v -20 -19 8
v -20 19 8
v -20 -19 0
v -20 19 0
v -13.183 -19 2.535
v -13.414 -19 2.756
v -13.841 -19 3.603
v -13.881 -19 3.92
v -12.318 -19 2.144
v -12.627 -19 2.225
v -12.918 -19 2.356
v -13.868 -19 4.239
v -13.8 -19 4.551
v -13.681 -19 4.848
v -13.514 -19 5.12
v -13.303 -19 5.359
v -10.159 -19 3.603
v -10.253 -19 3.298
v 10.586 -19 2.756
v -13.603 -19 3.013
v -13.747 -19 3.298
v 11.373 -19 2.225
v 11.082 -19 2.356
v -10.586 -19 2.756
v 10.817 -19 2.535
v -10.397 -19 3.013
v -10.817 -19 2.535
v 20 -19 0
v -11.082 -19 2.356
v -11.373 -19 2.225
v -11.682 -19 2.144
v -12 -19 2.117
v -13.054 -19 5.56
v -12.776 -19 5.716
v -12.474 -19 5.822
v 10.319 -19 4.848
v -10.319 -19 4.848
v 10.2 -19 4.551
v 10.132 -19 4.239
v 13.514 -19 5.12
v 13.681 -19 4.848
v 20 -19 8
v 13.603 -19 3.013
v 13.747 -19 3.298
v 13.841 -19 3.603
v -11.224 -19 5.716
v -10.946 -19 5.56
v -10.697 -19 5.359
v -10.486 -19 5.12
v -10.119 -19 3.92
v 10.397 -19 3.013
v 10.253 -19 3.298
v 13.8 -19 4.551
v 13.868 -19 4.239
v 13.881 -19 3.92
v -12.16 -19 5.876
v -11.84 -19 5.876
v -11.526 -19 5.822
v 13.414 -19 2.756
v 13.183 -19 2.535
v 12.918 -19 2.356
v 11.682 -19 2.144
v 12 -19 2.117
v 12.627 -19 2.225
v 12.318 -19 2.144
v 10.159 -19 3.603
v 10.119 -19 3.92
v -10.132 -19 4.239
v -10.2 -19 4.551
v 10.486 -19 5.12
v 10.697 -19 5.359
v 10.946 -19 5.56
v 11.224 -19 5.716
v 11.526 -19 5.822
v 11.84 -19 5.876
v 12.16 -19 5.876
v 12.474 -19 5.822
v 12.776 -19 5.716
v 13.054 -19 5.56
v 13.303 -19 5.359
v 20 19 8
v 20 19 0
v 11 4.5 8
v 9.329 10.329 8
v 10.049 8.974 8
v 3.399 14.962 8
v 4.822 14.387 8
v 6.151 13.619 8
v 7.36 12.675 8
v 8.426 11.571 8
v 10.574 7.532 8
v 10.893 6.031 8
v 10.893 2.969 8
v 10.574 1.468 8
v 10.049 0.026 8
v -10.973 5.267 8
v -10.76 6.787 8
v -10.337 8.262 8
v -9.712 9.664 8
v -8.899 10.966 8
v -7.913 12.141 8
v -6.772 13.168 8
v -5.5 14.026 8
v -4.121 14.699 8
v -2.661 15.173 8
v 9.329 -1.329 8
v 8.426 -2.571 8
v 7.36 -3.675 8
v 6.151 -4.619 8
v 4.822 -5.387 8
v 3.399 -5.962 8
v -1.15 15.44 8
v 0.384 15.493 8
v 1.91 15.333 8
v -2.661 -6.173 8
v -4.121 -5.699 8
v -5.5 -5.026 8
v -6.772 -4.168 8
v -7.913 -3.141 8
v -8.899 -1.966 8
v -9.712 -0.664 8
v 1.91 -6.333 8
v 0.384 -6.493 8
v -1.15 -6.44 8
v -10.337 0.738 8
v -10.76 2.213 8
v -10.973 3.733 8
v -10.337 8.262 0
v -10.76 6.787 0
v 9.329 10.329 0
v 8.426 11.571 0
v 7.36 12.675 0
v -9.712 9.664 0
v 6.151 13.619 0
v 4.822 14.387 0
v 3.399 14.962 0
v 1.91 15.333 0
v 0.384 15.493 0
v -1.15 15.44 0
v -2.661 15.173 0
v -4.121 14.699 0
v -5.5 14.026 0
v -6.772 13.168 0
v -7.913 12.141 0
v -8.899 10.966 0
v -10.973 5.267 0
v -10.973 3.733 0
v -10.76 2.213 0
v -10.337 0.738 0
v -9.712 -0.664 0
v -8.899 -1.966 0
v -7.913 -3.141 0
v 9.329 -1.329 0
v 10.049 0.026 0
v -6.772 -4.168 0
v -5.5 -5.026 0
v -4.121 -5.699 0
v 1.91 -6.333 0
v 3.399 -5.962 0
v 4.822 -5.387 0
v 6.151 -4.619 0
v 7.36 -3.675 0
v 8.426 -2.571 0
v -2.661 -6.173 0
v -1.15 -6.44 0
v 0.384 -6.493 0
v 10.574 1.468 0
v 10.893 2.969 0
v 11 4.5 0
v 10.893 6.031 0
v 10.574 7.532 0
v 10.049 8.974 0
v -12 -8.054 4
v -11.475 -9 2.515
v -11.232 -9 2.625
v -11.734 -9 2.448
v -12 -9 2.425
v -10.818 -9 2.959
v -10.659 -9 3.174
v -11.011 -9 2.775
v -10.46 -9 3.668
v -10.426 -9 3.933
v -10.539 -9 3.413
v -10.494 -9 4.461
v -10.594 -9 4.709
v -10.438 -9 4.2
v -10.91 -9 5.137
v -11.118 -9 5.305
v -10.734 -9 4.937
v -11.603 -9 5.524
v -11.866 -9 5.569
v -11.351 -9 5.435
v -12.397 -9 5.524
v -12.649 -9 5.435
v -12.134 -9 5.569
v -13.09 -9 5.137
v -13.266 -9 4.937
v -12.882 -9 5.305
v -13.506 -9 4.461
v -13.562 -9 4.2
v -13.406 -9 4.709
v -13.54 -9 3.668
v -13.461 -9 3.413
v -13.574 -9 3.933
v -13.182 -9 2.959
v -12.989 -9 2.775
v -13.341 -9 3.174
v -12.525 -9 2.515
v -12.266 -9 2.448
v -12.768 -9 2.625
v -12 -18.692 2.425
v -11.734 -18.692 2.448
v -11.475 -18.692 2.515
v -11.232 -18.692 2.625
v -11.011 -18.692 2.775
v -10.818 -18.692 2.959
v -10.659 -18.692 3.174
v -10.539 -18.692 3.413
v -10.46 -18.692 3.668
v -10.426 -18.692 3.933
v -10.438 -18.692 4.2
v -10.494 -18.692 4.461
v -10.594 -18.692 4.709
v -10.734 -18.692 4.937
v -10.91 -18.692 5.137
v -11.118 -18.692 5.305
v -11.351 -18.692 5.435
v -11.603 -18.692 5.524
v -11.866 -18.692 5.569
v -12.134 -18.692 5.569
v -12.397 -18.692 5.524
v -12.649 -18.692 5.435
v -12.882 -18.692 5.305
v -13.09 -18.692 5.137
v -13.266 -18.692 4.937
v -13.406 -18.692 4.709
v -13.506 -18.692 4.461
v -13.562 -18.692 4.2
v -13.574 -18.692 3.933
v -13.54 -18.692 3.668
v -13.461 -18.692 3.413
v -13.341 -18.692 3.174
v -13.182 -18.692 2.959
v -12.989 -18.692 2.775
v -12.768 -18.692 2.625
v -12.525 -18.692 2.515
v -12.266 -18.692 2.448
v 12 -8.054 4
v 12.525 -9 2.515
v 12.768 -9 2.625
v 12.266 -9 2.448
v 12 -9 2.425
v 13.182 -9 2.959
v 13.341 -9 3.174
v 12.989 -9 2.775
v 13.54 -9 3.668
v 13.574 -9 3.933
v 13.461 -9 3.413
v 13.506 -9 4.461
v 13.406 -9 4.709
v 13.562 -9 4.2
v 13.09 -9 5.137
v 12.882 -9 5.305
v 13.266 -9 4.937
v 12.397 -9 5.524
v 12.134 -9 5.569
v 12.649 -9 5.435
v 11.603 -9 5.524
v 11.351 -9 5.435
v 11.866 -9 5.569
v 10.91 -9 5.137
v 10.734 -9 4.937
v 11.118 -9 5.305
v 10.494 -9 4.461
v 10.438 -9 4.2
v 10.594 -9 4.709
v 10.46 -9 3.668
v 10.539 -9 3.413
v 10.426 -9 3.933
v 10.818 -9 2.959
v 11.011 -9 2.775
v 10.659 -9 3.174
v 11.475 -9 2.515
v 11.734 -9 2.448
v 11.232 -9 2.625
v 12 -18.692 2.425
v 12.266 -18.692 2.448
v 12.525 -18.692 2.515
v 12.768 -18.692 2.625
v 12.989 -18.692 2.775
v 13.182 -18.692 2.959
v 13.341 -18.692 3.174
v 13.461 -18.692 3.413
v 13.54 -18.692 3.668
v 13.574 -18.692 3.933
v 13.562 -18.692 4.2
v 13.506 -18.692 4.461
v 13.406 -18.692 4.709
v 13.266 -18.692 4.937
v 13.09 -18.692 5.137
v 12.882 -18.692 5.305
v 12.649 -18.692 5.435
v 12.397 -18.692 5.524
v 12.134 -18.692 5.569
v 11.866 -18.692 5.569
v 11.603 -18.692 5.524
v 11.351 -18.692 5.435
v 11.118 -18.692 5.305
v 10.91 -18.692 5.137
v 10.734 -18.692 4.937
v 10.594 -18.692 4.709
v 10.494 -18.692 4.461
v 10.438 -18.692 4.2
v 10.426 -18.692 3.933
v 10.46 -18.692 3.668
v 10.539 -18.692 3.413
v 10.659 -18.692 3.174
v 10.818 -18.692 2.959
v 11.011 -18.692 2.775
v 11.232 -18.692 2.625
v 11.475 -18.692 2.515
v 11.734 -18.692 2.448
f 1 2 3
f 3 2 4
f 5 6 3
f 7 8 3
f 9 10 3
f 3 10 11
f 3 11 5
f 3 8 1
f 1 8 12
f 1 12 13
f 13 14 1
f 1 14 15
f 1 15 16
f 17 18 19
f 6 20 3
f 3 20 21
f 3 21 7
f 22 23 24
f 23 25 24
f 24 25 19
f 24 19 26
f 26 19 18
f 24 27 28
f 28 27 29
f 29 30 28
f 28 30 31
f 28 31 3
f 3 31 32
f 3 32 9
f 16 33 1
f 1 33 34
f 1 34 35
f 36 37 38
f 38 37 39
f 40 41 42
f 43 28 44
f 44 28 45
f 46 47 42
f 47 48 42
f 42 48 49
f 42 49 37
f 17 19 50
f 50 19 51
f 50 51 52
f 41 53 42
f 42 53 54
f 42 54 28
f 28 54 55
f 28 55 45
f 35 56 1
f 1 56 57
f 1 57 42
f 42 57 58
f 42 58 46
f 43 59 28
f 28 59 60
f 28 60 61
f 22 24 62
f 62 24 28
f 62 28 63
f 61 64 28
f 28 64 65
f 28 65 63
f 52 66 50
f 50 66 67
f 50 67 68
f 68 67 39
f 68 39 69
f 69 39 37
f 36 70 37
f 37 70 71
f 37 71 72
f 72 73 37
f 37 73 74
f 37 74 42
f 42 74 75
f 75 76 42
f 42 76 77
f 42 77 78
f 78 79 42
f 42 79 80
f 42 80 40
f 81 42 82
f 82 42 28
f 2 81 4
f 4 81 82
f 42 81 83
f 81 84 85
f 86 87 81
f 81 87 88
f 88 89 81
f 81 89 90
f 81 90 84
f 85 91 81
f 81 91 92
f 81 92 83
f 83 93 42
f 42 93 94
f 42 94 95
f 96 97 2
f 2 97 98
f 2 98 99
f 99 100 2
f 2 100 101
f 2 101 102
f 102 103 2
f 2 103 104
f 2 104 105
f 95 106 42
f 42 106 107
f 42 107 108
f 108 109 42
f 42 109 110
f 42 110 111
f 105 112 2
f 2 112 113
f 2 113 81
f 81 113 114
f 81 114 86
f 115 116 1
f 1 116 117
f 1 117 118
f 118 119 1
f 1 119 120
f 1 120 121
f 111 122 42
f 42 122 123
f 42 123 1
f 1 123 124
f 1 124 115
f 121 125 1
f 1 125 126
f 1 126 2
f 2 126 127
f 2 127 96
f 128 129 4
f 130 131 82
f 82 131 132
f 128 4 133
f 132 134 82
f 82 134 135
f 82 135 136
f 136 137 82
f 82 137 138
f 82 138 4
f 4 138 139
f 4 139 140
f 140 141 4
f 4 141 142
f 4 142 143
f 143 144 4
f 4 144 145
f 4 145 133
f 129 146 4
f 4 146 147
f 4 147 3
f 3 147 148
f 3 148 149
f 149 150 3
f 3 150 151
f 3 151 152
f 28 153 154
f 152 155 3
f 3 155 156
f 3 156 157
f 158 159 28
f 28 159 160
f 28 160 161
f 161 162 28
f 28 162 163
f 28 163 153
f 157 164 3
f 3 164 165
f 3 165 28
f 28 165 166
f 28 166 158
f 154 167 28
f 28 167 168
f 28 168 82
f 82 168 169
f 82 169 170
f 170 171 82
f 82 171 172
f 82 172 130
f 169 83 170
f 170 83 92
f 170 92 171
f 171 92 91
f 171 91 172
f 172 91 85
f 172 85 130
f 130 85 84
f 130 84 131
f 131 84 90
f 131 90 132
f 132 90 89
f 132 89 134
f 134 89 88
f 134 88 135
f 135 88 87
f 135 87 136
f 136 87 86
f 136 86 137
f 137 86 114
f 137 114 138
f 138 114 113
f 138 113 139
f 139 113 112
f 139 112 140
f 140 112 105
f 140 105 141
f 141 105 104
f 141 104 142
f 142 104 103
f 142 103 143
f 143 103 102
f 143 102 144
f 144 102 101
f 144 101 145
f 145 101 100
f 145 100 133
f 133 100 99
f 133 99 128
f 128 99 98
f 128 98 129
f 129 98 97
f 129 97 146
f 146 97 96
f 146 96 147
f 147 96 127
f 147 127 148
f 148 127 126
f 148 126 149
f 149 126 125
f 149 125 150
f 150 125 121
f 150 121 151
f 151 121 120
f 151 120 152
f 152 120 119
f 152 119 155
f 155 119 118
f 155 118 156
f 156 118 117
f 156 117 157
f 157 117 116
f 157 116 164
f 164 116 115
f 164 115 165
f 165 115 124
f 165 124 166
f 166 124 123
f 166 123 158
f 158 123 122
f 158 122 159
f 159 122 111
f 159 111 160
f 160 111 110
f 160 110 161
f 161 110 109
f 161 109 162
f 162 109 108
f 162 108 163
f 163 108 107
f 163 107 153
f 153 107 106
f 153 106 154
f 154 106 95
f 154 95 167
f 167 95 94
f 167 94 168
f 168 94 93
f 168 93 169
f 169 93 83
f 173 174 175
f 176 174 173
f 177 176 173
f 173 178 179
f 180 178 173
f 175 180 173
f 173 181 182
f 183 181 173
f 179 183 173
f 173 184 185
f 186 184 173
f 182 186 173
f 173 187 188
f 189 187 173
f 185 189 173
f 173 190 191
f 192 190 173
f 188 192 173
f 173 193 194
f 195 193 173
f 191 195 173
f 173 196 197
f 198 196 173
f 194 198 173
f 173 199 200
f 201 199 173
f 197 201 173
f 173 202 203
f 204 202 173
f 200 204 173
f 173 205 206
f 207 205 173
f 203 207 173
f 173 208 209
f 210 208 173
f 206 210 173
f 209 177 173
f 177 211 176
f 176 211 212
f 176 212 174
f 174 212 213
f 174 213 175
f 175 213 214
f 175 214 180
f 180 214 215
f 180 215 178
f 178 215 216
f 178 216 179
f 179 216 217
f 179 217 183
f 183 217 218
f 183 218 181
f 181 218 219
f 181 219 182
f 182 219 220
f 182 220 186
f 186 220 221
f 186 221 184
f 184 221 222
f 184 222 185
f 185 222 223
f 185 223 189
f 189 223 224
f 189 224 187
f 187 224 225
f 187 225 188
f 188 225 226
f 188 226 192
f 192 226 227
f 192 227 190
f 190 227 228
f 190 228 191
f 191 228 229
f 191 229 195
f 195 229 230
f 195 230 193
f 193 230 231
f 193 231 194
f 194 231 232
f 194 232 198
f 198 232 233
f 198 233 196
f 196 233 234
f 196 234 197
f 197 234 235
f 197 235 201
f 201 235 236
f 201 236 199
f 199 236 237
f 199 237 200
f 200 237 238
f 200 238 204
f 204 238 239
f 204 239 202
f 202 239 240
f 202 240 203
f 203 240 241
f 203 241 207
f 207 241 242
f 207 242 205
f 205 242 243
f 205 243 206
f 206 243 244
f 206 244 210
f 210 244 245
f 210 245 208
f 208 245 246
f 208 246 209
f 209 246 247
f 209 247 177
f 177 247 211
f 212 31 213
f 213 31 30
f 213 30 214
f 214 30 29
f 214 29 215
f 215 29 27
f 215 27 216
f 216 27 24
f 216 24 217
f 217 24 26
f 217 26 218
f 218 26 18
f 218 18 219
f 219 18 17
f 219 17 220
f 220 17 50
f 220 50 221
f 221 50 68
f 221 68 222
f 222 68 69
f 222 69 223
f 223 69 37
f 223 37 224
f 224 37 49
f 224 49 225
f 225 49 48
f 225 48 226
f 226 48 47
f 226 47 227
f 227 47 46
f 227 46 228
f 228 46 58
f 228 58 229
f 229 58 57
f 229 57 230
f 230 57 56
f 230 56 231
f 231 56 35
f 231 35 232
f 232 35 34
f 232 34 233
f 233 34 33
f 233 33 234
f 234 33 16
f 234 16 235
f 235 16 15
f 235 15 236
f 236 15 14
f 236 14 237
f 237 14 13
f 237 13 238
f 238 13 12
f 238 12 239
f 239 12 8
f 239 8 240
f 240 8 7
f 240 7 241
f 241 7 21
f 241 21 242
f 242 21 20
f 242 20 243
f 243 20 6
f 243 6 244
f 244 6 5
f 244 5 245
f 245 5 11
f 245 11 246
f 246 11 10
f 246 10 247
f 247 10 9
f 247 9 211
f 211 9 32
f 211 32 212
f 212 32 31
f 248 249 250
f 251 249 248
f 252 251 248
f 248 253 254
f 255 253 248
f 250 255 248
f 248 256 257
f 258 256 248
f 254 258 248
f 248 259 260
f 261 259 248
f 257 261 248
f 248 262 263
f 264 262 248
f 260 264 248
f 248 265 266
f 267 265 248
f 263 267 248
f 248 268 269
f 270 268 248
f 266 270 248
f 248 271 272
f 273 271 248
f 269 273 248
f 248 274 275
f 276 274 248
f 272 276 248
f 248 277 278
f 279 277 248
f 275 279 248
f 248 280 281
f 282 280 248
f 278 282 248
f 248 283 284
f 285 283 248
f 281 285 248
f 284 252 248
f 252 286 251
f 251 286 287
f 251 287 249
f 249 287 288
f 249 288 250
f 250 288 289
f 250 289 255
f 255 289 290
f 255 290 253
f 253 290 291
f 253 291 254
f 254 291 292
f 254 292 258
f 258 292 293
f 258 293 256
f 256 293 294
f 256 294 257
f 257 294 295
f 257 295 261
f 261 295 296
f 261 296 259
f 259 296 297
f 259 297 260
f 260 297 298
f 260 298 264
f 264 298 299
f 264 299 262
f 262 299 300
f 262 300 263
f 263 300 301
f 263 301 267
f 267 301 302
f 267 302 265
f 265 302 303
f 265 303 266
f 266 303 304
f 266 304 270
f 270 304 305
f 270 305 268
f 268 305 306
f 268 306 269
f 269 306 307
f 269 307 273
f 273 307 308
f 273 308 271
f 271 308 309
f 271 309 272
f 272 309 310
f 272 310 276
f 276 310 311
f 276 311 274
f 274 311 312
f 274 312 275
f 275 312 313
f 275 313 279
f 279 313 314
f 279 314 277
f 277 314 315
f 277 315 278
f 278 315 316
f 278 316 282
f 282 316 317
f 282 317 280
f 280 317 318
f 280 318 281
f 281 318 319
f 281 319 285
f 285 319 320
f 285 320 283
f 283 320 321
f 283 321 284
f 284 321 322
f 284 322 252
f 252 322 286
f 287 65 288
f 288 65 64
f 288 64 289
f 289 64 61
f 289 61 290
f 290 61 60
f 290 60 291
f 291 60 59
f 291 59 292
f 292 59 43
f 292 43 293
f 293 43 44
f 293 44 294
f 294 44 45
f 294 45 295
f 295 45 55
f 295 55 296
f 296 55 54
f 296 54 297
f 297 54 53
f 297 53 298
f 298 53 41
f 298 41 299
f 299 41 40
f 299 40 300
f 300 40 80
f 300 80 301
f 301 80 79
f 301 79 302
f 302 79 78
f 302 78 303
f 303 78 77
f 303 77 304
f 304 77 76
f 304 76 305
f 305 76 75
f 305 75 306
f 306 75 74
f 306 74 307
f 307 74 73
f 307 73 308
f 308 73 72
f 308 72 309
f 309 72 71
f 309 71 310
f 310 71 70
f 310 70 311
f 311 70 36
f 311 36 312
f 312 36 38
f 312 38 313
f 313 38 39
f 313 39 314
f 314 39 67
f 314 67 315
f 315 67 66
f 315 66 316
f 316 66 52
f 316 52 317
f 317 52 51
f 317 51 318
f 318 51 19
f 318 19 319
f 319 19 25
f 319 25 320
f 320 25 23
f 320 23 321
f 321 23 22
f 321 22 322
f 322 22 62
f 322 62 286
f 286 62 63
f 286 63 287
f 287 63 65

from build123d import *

# Parameters (mm, degrees)
ESBO_O1_W                                         = 40
ESBO_O1_H                                         = 38
RESSALTO_EXTRUS_O1_DEPTH                          = 8
ESBO_O2_R                                         = 11
CORTE_EXTRUS_O1_DEPTH                             = 9
FURO_ROSCADO_PARA_CONDU_TE_DE_M3X0_51_D           = 3.15
FURO_ROSCADO_PARA_CONDU_TE_DE_M3X0_51_DEPTH       = 10
FURO_ROSCADO_PARA_CONDU_TE_DE_M3X0_51_CSINK_D     = 3.766
FURO_ROSCADO_PARA_CONDU_TE_DE_M3X0_51_CSINK_ANGLE = 90
FURO_ROSCADO_PARA_CONDU_TE_DE_M3X0_51_TIP         = 0.946355475


with BuildPart() as part:
    # Esboço1 → Ressalto-extrusão1 (new body)
    with BuildSketch(Plane.XY):
        Rectangle(ESBO_O1_W, ESBO_O1_H)
    extrude(amount=RESSALTO_EXTRUS_O1_DEPTH)

    # Esboço2 → Corte-extrusão1 (cut, through all)
    with BuildSketch(Plane.XY.offset(8)):
        with Locations((0, 4.5)):
            Circle(ESBO_O2_R)
    extrude(amount=-CORTE_EXTRUS_O1_DEPTH, mode=Mode.SUBTRACT)

    # Furo roscado para conduíte de M3x0.51
    with Locations(Plane(origin=(0, -19, 0), x_dir=(-1, 0, 0), z_dir=(0, -1, 0))):
        with Locations((-12, -4), (12, -4)):
            CounterSinkHole(FURO_ROSCADO_PARA_CONDU_TE_DE_M3X0_51_D / 2, FURO_ROSCADO_PARA_CONDU_TE_DE_M3X0_51_CSINK_D / 2, depth=FURO_ROSCADO_PARA_CONDU_TE_DE_M3X0_51_DEPTH, counter_sink_angle=FURO_ROSCADO_PARA_CONDU_TE_DE_M3X0_51_CSINK_ANGLE)
            with Locations((0, 0, -(FURO_ROSCADO_PARA_CONDU_TE_DE_M3X0_51_DEPTH + FURO_ROSCADO_PARA_CONDU_TE_DE_M3X0_51_TIP / 2))):  # 118° drill point
                Cone(0, FURO_ROSCADO_PARA_CONDU_TE_DE_M3X0_51_D / 2, FURO_ROSCADO_PARA_CONDU_TE_DE_M3X0_51_TIP, mode=Mode.SUBTRACT)


solid = part.part
